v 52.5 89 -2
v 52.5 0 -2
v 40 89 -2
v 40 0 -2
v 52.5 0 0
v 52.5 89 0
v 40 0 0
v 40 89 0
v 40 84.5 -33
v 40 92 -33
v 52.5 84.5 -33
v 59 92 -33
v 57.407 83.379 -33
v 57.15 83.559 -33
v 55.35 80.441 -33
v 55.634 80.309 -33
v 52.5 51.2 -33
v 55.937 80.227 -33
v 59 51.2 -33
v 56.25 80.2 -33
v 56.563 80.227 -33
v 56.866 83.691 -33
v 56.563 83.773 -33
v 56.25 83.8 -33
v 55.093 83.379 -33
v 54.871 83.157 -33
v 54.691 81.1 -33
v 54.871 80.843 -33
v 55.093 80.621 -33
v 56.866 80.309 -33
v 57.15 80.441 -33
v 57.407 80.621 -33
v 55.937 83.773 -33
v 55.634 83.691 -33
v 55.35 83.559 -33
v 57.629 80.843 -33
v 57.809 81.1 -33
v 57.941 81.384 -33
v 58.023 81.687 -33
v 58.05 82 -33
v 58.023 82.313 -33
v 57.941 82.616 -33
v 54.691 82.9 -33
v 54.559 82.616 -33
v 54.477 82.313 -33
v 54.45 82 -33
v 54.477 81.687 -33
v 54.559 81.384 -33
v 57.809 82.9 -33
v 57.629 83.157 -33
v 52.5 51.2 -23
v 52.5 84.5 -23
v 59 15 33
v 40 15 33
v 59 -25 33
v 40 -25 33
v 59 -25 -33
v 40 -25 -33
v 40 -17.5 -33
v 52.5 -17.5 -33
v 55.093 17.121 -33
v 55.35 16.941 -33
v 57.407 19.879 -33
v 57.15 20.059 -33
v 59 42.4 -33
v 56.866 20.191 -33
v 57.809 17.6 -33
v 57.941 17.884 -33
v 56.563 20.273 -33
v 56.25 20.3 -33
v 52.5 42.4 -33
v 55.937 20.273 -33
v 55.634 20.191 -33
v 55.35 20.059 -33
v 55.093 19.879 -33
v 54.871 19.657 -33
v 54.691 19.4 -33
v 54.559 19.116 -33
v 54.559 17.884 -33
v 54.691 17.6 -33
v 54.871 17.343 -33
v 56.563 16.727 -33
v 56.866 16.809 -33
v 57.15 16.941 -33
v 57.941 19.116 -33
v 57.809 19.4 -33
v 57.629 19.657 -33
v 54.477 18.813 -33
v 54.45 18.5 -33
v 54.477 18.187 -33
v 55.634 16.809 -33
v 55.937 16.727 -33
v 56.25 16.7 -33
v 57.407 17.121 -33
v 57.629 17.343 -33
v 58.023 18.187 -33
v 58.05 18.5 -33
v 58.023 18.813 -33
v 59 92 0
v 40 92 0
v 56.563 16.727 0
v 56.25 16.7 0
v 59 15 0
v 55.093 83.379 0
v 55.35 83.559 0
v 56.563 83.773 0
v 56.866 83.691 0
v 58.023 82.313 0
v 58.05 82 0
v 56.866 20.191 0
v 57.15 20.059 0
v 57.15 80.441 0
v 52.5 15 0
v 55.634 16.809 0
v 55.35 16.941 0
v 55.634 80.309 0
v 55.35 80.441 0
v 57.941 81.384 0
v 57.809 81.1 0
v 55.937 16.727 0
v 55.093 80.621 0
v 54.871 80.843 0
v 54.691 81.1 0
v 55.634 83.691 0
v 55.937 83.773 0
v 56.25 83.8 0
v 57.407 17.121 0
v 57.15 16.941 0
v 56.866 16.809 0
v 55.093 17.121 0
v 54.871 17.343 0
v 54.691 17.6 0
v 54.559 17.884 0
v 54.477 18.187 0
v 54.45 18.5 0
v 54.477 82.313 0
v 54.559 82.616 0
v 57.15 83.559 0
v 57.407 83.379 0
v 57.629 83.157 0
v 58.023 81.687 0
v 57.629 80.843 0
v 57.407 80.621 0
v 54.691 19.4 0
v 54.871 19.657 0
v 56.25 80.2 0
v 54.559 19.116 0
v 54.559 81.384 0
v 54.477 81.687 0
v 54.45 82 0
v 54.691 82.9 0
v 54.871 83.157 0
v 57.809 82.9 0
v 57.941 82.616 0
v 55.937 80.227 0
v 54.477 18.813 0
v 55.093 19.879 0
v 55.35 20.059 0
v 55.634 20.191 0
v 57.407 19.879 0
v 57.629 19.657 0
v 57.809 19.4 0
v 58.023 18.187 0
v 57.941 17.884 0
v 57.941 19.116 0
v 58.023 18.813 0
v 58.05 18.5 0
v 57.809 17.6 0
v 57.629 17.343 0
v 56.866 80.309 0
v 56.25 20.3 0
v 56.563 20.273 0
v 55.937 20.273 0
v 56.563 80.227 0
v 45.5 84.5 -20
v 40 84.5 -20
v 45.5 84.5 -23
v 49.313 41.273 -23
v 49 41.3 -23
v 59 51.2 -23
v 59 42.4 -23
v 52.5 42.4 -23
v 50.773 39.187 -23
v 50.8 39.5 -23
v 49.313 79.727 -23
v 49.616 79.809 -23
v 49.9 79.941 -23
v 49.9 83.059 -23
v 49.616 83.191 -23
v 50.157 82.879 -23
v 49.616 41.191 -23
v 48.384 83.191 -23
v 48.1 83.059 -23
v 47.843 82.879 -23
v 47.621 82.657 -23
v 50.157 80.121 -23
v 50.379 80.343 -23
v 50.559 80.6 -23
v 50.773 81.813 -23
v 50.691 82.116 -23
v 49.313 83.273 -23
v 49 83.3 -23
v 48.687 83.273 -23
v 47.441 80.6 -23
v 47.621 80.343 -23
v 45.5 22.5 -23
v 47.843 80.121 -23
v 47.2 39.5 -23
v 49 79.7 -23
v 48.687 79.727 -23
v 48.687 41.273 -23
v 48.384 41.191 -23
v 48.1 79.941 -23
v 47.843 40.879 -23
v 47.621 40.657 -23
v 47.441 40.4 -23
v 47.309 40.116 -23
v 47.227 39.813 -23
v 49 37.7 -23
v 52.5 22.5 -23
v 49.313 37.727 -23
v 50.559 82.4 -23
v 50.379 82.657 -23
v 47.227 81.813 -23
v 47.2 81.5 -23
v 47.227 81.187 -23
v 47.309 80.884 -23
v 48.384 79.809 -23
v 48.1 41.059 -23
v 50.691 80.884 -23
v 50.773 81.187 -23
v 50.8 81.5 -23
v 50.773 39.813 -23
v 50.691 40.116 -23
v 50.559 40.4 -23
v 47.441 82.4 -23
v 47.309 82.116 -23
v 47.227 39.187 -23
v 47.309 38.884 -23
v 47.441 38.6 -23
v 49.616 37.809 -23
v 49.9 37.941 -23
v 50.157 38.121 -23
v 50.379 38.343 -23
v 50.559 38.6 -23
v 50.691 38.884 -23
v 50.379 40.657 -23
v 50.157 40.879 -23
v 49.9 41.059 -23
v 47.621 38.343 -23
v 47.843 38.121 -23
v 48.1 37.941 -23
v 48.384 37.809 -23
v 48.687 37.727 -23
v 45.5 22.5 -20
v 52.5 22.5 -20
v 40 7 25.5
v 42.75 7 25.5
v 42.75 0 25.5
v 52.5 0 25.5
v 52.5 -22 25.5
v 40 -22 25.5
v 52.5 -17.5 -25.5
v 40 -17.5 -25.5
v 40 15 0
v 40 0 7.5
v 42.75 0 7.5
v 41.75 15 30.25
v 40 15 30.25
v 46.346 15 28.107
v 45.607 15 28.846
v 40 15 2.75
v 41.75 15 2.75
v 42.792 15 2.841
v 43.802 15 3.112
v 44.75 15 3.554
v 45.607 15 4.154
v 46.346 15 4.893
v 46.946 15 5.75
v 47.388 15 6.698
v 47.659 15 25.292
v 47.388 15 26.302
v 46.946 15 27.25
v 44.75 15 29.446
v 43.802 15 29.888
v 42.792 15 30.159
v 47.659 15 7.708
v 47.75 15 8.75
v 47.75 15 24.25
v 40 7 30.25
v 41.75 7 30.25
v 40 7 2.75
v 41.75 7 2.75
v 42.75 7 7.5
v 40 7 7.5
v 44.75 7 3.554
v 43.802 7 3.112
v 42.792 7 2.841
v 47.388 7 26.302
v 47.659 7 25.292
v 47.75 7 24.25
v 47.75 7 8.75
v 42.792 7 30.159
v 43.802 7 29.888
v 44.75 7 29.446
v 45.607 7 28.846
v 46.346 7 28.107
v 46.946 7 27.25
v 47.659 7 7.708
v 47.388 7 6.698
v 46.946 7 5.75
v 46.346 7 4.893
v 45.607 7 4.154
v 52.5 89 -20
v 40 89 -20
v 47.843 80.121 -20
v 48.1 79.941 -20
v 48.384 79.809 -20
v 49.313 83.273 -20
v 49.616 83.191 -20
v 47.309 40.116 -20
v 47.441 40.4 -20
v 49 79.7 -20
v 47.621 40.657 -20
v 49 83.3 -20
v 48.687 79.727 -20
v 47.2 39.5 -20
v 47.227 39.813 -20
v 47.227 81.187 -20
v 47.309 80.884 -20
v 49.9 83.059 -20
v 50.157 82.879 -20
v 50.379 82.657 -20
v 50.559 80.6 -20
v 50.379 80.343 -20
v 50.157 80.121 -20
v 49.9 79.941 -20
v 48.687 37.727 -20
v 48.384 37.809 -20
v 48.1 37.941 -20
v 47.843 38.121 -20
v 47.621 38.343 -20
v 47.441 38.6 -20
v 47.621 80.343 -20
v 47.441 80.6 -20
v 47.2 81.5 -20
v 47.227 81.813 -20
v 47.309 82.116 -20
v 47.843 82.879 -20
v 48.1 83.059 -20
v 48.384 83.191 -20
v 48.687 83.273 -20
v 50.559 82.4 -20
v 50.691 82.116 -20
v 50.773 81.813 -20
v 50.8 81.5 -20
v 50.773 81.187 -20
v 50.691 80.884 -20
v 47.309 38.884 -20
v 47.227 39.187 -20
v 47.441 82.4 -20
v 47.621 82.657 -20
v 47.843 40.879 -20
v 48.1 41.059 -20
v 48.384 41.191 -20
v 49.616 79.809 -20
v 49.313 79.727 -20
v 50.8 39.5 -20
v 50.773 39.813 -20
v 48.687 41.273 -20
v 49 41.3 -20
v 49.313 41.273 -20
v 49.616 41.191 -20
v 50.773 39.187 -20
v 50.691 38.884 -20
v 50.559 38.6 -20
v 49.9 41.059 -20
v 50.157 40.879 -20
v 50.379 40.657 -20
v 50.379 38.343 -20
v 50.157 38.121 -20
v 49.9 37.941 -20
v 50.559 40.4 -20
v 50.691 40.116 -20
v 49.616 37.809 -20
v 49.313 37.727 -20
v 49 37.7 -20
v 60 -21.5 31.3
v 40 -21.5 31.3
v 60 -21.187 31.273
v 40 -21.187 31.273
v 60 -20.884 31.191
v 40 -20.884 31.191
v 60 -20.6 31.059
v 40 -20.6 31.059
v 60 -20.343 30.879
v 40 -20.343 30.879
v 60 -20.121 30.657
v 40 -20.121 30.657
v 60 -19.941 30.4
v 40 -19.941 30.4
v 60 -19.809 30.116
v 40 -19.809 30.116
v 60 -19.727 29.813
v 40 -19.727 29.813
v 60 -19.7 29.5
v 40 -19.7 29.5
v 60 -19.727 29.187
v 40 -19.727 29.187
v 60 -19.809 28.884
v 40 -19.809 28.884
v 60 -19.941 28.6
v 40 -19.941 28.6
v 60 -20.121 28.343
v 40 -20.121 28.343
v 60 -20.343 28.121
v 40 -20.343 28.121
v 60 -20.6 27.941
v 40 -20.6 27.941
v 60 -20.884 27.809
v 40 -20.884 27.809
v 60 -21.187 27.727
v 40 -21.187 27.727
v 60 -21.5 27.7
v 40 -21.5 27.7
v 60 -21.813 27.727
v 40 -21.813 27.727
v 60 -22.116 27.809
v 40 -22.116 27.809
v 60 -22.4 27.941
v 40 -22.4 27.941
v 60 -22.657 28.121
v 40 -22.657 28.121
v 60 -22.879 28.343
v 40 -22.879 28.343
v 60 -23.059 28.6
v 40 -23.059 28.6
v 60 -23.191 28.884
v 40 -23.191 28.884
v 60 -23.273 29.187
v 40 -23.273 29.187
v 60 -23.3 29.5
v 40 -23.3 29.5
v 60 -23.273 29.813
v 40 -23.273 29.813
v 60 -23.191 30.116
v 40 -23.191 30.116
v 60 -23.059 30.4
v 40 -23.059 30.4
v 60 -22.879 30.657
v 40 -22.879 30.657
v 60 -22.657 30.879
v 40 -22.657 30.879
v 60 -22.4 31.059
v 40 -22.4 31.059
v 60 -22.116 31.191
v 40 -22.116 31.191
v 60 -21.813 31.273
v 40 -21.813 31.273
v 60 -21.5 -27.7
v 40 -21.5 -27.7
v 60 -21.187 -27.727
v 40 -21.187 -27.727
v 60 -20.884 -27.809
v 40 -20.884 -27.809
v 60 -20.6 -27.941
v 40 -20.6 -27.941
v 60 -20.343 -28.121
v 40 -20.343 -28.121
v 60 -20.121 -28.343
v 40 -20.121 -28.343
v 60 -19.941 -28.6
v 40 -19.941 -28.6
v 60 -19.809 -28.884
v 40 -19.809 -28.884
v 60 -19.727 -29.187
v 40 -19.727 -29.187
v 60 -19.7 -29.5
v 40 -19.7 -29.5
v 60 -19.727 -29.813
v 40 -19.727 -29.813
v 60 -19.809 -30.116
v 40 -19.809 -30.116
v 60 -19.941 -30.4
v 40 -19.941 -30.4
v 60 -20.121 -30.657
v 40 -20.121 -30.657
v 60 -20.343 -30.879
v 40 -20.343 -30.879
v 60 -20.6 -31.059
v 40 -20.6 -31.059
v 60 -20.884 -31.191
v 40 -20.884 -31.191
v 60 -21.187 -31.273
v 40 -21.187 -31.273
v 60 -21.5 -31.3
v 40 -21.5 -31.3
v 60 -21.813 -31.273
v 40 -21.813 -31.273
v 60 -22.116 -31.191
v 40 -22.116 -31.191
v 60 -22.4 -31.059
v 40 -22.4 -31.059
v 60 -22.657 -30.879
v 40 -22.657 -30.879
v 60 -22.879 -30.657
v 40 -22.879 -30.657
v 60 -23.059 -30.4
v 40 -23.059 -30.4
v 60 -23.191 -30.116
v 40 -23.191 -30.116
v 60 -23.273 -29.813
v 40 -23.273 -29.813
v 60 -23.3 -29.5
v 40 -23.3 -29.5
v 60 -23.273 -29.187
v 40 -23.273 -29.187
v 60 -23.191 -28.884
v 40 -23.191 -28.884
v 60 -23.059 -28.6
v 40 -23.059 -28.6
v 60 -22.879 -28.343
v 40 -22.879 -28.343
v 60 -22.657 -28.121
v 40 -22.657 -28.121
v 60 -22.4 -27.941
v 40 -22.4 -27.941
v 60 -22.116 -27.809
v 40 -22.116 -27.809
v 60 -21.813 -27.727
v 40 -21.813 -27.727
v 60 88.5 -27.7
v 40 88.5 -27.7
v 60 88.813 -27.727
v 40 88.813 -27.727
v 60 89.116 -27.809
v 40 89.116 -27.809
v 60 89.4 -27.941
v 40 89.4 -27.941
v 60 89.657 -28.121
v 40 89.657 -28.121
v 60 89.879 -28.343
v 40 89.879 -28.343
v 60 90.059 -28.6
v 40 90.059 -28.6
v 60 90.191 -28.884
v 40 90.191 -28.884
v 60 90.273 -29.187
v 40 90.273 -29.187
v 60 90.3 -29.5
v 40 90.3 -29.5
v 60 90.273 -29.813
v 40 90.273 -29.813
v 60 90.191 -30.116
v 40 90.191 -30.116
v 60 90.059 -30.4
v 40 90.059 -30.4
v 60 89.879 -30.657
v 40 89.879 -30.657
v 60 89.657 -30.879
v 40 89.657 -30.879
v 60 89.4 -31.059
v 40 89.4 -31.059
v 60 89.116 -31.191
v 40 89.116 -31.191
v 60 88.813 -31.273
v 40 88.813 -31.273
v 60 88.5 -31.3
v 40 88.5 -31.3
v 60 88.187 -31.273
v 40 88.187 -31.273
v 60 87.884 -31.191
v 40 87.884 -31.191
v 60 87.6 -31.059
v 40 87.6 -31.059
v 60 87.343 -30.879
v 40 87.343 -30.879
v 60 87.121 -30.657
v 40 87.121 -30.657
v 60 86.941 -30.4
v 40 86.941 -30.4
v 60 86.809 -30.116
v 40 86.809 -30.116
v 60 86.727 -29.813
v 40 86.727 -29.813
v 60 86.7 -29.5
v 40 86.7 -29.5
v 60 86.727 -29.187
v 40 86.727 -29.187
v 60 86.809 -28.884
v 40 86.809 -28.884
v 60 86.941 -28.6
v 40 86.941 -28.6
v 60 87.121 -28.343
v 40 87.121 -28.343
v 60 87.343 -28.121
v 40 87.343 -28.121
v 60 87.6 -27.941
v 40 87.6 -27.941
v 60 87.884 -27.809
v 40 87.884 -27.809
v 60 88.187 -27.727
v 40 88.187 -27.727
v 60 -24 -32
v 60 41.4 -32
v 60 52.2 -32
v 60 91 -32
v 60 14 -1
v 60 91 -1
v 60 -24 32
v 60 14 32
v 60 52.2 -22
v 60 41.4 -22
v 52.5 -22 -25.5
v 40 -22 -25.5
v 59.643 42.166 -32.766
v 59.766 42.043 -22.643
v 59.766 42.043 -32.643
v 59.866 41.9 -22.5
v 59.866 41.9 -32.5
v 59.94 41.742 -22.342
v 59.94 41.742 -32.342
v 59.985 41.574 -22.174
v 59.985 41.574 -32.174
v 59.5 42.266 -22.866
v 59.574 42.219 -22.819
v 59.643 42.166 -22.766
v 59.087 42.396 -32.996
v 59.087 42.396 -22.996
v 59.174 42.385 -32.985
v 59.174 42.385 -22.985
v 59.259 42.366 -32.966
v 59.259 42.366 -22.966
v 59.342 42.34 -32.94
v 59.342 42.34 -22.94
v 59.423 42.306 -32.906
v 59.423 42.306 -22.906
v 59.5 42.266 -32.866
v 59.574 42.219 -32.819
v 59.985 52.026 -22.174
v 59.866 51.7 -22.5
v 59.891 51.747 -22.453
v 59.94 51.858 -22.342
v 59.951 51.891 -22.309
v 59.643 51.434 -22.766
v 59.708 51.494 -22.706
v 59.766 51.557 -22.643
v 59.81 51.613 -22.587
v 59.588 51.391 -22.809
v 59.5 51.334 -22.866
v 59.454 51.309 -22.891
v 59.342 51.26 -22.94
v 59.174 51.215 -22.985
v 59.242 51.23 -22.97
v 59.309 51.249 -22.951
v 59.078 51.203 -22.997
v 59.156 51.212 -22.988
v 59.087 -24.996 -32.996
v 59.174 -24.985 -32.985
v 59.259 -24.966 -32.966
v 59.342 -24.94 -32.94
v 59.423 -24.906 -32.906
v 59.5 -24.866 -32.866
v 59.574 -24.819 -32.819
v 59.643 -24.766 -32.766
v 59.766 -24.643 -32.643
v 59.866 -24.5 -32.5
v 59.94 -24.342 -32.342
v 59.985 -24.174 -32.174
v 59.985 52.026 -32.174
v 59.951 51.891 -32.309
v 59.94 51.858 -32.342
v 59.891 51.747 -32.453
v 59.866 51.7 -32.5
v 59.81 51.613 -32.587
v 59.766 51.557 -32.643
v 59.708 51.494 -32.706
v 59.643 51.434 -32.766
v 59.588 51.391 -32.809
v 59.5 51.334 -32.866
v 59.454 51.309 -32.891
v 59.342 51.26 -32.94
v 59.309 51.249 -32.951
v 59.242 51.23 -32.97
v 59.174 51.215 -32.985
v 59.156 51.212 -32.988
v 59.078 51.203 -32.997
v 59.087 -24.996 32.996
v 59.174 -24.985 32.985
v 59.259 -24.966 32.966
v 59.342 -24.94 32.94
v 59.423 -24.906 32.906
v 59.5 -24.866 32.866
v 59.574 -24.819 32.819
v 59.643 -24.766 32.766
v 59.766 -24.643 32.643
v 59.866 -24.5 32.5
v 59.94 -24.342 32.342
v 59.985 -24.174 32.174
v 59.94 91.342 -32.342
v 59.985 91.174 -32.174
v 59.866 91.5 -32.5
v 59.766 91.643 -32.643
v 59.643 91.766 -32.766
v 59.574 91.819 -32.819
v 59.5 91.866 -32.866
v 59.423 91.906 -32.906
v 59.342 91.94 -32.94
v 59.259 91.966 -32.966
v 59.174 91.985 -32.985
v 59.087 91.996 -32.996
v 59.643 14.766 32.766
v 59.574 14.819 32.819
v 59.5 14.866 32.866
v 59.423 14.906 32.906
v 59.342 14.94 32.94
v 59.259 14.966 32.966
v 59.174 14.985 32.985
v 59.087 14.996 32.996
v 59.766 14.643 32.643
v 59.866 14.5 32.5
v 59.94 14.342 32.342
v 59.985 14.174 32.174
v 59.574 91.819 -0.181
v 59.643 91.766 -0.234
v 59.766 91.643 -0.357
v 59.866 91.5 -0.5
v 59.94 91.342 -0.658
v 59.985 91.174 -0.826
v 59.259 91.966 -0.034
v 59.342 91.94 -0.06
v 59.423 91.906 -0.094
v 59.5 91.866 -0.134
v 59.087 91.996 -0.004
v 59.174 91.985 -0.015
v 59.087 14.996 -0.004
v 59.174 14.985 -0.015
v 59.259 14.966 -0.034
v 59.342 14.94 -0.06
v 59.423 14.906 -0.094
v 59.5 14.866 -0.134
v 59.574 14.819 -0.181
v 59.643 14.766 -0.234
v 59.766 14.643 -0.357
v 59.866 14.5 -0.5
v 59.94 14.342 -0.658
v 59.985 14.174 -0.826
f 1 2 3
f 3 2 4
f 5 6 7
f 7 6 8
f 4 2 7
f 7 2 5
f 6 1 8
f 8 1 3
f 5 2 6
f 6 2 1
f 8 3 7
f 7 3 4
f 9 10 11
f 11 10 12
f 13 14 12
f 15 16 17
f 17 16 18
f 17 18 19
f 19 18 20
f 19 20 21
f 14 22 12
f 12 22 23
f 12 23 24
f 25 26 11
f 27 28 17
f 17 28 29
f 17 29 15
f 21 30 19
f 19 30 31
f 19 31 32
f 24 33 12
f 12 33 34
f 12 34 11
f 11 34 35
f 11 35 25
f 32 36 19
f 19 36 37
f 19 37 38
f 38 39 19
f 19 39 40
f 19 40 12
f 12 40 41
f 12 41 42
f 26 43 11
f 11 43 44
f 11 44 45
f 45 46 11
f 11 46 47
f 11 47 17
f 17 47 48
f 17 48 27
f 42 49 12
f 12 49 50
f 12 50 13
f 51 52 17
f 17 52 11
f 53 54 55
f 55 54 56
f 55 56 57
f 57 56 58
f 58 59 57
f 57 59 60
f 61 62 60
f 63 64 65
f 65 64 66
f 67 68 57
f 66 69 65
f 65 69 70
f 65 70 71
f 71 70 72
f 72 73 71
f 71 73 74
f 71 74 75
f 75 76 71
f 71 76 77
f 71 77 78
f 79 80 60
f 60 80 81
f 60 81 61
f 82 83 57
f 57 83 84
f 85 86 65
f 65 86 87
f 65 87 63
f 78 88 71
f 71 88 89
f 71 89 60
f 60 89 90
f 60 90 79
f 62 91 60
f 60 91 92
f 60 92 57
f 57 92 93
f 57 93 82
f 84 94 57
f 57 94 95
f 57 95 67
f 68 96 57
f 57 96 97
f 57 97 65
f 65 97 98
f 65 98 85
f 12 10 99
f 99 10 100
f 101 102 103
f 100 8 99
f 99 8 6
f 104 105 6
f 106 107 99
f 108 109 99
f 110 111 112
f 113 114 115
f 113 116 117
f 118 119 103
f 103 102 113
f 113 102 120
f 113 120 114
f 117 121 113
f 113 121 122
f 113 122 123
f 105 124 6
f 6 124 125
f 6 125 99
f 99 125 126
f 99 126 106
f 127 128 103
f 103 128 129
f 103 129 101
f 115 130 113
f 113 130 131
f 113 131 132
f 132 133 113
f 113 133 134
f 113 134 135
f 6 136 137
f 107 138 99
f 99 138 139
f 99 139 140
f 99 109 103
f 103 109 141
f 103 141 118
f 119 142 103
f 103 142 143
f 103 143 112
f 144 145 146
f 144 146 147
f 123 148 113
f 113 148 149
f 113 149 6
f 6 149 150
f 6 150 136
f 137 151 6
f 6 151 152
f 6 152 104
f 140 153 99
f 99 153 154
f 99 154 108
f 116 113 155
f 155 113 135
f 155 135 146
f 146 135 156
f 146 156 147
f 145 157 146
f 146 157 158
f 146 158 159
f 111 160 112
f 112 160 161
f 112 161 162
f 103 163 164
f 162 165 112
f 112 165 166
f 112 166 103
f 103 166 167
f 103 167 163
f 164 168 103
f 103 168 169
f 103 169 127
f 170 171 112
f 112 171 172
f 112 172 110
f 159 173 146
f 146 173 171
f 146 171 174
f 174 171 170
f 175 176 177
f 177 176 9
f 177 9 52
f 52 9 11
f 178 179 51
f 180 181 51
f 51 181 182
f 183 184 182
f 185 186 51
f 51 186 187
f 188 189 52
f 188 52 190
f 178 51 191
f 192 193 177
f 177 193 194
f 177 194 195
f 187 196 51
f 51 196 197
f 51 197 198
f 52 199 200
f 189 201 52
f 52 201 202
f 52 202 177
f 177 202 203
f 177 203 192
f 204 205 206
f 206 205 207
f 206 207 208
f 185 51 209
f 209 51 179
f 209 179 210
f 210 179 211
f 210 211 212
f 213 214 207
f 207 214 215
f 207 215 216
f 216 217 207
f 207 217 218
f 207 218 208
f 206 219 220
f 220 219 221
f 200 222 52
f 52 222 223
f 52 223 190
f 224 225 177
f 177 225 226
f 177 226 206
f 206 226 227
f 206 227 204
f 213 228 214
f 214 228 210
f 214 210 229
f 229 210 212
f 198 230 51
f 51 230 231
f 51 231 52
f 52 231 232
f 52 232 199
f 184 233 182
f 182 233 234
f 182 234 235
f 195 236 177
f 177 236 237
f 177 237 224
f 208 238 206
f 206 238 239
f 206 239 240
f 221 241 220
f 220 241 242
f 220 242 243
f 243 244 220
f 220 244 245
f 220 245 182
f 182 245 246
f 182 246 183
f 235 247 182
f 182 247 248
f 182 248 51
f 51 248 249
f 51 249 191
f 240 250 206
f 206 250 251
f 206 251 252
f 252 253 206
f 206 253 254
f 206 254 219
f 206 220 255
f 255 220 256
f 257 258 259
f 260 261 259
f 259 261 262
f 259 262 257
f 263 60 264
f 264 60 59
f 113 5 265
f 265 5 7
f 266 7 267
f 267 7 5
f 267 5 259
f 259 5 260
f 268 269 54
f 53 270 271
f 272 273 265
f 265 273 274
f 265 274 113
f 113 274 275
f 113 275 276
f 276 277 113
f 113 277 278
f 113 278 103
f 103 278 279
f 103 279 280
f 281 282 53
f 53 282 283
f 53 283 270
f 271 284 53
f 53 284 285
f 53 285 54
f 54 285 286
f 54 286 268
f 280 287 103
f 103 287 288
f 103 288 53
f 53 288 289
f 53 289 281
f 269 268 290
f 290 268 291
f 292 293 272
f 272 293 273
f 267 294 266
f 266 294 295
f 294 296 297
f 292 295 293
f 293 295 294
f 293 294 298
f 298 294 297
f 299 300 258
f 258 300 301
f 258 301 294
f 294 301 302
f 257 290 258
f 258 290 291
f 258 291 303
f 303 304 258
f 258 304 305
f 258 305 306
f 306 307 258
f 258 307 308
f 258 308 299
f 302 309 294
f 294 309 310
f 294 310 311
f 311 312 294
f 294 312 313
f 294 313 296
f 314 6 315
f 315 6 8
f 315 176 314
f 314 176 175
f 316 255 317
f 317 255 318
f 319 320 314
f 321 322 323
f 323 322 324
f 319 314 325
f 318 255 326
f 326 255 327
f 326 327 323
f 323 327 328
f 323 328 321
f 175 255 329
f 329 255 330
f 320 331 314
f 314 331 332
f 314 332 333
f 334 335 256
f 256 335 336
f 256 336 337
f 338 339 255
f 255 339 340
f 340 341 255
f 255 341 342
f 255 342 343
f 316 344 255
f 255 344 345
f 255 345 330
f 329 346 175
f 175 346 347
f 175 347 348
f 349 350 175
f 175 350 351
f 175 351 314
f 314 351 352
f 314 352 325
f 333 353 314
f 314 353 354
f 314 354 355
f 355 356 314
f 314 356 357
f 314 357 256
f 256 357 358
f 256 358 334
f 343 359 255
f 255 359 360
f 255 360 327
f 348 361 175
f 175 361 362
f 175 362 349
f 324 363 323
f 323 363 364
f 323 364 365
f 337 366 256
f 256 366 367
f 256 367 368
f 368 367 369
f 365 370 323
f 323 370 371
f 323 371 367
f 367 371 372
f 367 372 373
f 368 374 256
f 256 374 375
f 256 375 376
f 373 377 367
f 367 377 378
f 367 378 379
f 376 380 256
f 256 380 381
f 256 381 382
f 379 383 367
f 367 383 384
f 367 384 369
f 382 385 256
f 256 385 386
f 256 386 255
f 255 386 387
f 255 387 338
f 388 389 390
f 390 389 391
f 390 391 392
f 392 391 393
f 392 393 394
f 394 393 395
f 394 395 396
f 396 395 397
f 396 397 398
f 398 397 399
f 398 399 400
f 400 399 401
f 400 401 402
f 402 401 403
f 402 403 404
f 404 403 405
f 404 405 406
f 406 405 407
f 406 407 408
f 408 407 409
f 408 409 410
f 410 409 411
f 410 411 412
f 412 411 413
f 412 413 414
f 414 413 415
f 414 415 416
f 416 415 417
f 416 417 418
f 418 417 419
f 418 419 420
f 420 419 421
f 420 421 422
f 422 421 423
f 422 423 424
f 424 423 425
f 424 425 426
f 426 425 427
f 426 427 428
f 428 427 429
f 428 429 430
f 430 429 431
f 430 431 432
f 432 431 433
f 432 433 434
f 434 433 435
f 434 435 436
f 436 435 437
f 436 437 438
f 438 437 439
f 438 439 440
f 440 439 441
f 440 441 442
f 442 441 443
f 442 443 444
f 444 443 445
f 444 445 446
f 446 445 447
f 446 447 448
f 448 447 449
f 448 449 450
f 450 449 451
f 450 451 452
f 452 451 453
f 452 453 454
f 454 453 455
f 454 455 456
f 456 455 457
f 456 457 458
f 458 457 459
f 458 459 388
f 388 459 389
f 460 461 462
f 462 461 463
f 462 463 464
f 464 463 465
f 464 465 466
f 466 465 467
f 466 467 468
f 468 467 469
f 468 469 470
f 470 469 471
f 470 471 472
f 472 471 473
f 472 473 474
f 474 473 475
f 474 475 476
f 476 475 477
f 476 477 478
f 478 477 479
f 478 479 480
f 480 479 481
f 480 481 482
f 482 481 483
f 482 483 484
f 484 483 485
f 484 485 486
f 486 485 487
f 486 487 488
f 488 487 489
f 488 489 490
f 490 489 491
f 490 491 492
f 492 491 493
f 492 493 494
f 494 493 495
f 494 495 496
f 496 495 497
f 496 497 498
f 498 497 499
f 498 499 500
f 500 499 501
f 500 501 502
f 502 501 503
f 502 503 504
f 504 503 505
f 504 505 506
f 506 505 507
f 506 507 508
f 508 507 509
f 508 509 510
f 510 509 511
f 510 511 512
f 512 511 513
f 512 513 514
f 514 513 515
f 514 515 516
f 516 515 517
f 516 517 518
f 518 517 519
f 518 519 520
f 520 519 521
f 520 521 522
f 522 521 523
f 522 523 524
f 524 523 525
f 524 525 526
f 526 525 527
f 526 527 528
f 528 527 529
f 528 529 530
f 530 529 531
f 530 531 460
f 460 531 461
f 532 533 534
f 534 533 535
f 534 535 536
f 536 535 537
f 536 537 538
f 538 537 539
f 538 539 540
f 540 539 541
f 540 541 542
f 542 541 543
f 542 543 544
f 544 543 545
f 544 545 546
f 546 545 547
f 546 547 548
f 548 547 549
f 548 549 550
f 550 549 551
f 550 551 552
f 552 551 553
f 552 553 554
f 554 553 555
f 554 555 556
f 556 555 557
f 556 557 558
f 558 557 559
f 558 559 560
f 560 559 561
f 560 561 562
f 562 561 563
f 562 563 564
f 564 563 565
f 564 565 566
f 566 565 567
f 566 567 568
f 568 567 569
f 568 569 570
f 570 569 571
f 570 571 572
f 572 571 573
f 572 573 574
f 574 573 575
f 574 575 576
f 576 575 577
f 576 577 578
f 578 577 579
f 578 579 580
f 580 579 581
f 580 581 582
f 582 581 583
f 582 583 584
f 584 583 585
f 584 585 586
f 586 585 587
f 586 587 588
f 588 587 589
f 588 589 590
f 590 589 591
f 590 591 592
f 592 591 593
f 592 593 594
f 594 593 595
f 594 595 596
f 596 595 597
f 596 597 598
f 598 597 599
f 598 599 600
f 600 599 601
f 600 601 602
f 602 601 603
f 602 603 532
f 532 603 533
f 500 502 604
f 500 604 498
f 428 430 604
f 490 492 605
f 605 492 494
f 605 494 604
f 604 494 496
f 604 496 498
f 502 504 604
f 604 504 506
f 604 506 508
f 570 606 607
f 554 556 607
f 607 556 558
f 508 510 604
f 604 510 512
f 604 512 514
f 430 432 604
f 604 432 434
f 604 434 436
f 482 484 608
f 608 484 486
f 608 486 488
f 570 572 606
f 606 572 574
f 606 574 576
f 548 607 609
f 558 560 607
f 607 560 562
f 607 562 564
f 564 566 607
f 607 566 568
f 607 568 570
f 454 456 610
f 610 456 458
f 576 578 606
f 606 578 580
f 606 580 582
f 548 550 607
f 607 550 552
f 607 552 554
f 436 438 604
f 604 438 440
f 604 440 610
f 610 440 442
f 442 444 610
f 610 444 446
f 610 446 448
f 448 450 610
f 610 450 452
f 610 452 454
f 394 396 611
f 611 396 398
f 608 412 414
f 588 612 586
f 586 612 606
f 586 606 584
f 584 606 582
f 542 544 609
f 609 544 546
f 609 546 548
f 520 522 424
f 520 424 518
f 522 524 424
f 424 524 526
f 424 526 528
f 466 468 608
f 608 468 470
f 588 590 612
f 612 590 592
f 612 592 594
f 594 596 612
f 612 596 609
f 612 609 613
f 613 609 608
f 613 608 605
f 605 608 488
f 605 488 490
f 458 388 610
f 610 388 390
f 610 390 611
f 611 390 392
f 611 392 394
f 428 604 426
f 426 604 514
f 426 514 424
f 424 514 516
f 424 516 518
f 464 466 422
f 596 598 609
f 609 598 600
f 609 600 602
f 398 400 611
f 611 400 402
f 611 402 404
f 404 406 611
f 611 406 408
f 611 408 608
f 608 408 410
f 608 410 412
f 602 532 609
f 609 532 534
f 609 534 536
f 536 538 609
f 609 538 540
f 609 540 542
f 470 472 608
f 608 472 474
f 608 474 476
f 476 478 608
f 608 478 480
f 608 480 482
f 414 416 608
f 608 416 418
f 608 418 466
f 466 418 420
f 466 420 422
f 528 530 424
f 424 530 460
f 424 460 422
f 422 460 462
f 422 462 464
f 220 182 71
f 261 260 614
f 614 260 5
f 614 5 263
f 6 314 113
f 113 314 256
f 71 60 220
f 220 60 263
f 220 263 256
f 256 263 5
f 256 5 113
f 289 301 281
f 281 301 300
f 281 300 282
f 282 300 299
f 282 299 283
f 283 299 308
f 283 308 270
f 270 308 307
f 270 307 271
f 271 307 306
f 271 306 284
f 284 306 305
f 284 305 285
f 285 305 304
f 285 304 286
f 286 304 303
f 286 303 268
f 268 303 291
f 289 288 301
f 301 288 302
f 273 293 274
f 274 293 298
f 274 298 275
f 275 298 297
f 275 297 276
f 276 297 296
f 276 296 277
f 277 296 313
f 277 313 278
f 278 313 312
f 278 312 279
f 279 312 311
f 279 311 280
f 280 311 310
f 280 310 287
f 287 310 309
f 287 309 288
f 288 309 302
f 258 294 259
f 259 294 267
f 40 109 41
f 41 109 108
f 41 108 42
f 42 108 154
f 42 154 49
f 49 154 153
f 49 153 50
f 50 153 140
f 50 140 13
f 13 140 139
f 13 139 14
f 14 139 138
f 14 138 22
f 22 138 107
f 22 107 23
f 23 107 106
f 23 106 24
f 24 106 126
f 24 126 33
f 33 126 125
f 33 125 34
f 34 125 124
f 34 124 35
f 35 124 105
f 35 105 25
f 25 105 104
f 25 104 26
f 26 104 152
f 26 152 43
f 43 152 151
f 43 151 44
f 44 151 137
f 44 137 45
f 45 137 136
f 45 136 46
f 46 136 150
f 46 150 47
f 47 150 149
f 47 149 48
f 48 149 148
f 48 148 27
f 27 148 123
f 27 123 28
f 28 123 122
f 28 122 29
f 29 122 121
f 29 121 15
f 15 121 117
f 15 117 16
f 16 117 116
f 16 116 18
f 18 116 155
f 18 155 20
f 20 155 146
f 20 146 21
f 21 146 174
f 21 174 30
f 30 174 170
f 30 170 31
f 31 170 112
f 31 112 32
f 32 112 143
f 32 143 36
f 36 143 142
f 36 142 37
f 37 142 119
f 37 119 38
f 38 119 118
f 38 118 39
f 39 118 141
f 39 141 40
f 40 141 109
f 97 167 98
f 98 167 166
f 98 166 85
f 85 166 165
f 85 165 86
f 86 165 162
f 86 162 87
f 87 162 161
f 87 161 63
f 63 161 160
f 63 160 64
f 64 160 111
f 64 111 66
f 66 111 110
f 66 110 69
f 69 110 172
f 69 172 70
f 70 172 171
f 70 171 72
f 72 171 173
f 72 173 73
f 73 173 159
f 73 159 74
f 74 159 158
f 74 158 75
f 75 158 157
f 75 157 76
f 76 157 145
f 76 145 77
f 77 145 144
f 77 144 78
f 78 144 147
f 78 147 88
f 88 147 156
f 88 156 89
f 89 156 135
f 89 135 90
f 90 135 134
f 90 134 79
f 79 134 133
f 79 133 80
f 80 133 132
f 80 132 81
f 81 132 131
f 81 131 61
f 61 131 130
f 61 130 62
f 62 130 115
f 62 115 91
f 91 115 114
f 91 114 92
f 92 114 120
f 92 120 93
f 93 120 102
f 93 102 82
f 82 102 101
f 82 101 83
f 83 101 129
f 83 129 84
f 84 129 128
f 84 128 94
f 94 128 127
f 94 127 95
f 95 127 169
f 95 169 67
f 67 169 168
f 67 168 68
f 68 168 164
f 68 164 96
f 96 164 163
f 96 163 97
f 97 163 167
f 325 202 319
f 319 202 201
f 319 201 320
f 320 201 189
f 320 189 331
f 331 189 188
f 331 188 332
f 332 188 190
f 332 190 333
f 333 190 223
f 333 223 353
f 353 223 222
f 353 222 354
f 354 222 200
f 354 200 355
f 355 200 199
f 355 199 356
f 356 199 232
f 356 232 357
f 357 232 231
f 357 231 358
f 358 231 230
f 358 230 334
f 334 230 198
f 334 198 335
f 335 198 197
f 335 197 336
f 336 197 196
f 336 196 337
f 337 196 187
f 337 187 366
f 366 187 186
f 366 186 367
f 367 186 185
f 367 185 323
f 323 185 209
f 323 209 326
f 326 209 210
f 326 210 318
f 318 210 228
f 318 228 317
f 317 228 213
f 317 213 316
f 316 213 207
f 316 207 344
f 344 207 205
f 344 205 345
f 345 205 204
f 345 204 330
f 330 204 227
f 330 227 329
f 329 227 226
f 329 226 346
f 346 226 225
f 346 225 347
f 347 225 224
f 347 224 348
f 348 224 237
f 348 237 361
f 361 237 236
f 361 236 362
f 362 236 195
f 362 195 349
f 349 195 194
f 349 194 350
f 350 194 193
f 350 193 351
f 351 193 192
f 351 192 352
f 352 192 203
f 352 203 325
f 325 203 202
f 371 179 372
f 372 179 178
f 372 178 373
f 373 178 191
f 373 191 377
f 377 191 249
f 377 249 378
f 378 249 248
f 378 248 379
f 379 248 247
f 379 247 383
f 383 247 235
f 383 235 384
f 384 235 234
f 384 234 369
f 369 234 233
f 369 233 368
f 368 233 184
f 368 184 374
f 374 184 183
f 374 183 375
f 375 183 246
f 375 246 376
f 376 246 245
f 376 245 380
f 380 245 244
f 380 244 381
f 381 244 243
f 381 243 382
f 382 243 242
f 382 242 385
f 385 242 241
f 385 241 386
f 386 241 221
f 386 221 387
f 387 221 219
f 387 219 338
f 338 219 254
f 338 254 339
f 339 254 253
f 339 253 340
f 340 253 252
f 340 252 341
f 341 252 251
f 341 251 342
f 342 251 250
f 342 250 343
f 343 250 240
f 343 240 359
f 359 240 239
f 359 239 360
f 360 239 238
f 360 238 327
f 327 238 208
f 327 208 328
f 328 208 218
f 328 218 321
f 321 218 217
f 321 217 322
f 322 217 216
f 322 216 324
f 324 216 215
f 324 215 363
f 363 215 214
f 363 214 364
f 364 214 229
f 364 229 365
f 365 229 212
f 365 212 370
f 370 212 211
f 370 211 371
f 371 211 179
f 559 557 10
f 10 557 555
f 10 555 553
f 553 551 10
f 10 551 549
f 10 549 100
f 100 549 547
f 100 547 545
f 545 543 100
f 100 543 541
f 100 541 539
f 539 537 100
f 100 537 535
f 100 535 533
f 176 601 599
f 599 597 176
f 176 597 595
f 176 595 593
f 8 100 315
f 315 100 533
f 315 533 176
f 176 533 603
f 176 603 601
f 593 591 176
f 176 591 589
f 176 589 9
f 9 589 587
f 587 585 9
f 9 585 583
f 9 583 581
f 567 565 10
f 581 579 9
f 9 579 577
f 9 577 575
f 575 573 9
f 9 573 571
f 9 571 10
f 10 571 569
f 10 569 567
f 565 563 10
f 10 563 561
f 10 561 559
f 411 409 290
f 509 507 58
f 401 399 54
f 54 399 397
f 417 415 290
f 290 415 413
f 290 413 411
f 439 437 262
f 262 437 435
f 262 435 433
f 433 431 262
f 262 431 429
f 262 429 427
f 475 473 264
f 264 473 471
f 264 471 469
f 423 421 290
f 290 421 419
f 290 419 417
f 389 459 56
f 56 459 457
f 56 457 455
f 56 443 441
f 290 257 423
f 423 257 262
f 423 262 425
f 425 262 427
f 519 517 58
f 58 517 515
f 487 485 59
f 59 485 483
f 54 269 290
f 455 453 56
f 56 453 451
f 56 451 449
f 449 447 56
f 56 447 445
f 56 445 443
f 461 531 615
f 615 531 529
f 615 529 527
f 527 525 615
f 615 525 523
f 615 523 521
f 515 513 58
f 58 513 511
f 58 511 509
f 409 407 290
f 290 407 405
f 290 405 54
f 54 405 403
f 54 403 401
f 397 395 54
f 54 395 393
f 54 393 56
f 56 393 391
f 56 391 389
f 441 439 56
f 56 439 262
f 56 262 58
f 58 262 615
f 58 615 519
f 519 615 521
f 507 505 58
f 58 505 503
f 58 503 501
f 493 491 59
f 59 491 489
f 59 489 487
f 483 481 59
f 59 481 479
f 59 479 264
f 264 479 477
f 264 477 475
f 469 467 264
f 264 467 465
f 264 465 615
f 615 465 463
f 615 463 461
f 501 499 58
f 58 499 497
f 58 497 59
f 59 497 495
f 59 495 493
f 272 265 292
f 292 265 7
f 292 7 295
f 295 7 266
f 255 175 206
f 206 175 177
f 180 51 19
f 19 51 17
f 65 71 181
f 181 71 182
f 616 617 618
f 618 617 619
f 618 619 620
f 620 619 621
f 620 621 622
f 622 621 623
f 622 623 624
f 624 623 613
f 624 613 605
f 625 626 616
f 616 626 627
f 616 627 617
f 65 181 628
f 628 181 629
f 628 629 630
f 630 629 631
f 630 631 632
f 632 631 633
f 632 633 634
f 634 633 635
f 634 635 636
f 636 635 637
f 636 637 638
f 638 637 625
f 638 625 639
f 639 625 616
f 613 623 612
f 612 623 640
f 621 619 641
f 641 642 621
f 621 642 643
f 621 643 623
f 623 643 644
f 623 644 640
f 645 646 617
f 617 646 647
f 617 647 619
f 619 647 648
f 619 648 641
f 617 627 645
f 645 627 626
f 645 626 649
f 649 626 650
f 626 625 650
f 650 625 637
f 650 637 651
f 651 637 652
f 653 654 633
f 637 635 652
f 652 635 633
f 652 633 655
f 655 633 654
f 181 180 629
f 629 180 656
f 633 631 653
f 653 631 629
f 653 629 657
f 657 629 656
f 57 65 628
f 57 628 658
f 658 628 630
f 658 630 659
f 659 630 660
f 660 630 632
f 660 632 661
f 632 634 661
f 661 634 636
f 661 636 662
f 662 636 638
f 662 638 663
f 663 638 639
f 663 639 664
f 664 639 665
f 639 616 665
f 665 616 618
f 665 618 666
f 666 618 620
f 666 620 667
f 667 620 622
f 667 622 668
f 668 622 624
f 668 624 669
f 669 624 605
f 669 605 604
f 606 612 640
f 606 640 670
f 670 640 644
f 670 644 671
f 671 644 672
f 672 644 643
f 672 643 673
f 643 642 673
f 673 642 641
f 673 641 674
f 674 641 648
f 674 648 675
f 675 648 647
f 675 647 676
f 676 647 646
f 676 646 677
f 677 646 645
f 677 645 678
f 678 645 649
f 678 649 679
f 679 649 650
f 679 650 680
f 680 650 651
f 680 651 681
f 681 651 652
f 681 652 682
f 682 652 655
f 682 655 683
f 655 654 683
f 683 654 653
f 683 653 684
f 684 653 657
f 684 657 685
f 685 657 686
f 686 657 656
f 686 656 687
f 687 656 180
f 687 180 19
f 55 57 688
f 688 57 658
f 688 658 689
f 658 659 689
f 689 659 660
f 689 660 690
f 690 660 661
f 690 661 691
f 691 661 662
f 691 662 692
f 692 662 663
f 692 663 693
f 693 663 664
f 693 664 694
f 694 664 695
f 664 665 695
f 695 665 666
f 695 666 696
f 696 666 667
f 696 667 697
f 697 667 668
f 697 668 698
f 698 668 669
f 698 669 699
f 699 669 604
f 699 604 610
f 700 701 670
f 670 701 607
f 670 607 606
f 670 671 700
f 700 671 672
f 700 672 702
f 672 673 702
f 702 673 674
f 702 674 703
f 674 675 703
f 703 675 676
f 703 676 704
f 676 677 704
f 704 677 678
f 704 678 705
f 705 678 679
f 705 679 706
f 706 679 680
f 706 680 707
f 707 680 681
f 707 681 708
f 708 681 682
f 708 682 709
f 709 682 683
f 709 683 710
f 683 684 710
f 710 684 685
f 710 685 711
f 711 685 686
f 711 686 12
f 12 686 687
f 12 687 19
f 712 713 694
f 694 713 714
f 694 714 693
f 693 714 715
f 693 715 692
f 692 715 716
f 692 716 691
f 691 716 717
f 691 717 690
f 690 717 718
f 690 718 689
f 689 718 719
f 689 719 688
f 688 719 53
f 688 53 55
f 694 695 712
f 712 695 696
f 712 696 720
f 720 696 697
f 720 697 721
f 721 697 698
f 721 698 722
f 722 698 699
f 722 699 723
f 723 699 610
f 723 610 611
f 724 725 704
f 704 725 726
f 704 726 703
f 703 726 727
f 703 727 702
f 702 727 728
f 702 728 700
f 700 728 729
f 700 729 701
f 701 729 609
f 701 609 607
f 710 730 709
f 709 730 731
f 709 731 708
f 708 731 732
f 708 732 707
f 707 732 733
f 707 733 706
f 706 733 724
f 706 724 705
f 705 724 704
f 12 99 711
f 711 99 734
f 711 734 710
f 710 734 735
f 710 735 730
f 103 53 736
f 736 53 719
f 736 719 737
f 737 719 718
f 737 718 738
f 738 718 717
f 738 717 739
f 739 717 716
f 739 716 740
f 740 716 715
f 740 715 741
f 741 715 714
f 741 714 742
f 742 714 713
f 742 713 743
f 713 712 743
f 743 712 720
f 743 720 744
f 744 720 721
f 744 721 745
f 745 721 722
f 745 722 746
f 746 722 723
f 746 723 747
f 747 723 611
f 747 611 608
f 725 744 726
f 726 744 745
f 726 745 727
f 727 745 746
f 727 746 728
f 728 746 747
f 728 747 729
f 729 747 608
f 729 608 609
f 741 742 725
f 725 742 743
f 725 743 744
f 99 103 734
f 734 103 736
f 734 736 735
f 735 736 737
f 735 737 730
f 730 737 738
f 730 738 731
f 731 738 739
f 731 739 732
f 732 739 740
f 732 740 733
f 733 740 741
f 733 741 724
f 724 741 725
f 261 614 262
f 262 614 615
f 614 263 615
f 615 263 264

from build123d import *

# Parameters (mm, degrees)
SKETCH_1_W               = 33
SKETCH_1_H               = 25
SKETCH_1_W_2             = 23
SKETCH_1_H_2             = 117
SKETCH_1_W_3             = 10
EXTRUDE_1_DEPTH          = 60
SKETCH_2_W               = 45
SKETCH_2_H               = 62
CUT_EXTRUDE_1_DEPTH      = 10
SKETCH_3_R               = 8.1
CUT_EXTRUDE_2_DEPTH      = 10
SKETCH_4_W               = 45
SKETCH_4_H               = 40
CUT_EXTRUDE_3_DEPTH      = 58.5
SKETCH_5_W               = 60
SKETCH_5_H               = 33
EXTRUDE_2_DEPTH          = 15
EXTRUDE_3_DEPTH          = 7
SKETCH_7_W               = 45
SKETCH_7_H               = 66.5
CUT_EXTRUDE_4_DEPTH      = 20
SKETCH_8_W               = 45
SKETCH_8_H               = 2
EXTRUDE_4_DEPTH          = 89
SKETCH_9_R               = 1.8
CUT_EXTRUDE_5_DEPTH      = 61
SKETCH_10_R              = 1.8
CUT_EXTRUDE_6_DEPTH      = 34
CUT_EXTRUDE_6_DEPTH_BACK = 34
SKETCH_12_R              = 1.8
CUT_EXTRUDE_7_DEPTH      = 3
CUT_EXTRUDE_8_DEPTH      = 40
SKETCH_21_W              = 3
SKETCH_21_H              = 62
CUT_EXTRUDE_9_DEPTH      = 5.5
SKETCH_23_W              = 7.5
SKETCH_23_H              = 8.8
CUT_EXTRUDE_10_DEPTH     = 10
FILLET_1_R               = 1
CUT_EXTRUDE_START        = -12.5
SKETCH_24_W              = 51
SKETCH_24_H              = 4.5
CUT_EXTRUDE_11_DEPTH     = 12.5


with BuildPart() as part:
    # ｽｹｯﾁ1 → ﾎﾞｽ - 押し出し1 (new body)
    with BuildSketch(Plane(origin=(0, 0, 0), x_dir=(0, 0, -1), z_dir=(1, 0, 0))):
        with Locations((-16.5, -12.5)):
            Rectangle(SKETCH_1_W, SKETCH_1_H)
        with Locations((11.5, 33.5)):
            Rectangle(SKETCH_1_W_2, SKETCH_1_H_2)
        with Locations((28, 33.5)):
            Rectangle(SKETCH_1_W_3, SKETCH_1_H_2)
    extrude(amount=EXTRUDE_1_DEPTH)

    # ｽｹｯﾁ2 → ｶｯﾄ - 押し出し1 (cut)
    with BuildSketch(Plane(origin=(0, 0, -33), x_dir=(-1, 0, 0), z_dir=(0, 0, -1))):
        with Locations((-30, 53.5)):
            Rectangle(SKETCH_2_W, SKETCH_2_H)
    extrude(amount=-CUT_EXTRUDE_1_DEPTH, mode=Mode.SUBTRACT)

    # ｽｹｯﾁ3 → ｶｯﾄ - 押し出し2 (cut)
    with BuildSketch(Plane(origin=(0, 92, 0), x_dir=(1, 0, 0), z_dir=(0, 1, 0))):
        with Locations((29, 12.5)):
            Circle(SKETCH_3_R)
    extrude(amount=-CUT_EXTRUDE_2_DEPTH, mode=Mode.SUBTRACT)

    # ｽｹｯﾁ4 → ｶｯﾄ - 押し出し3 (cut)
    with BuildSketch(Plane(origin=(0, 0, -33), x_dir=(-1, 0, 0), z_dir=(0, 0, -1))):
        with Locations((-30, 2.5)):
            Rectangle(SKETCH_4_W, SKETCH_4_H)
    extrude(amount=-CUT_EXTRUDE_3_DEPTH, mode=Mode.SUBTRACT)

    # ｽｹｯﾁ5 → ﾎﾞｽ - 押し出し2 (add)
    with BuildSketch(Plane(origin=(0, 0, 0), x_dir=(1, 0, 0), z_dir=(0, 1, 0))):
        with Locations((30, -16.5)):
            Rectangle(SKETCH_5_W, SKETCH_5_H)
        with BuildLine():
            Line((41.75, -2.75), (16.25, -2.75))
            ThreePointArc((16.25, -2.75), (12.007359313, -4.507359313), (10.25, -8.75))
            Line((10.25, -8.75), (10.25, -24.25))
            ThreePointArc((10.25, -24.25), (12.007359313, -28.492640687), (16.25, -30.25))
            Line((16.25, -30.25), (41.75, -30.25))
            ThreePointArc((41.75, -30.25), (45.992640687, -28.492640687), (47.75, -24.25))
            Line((47.75, -24.25), (47.75, -8.75))
            ThreePointArc((47.75, -8.75), (45.992640687, -4.507359313), (41.75, -2.75))
        make_face(mode=Mode.SUBTRACT)
    extrude(amount=EXTRUDE_2_DEPTH)

    # ｽｹｯﾁ6 → ﾎﾞｽ - 押し出し3 (add)
    with BuildSketch(Plane(origin=(0, 0, 0), x_dir=(1, 0, 0), z_dir=(0, 1, 0))):
        with BuildLine():
            Line((10.381652703, -25.5), (34.75, -25.5))
            Line((34.75, -25.5), (34.75, -7.5))
            Line((34.75, -7.5), (34.75, -2.75))
            Line((34.75, -2.75), (16.25, -2.75))
            ThreePointArc((16.25, -2.75), (12.007359313, -4.507359313), (10.25, -8.75))
            Line((10.25, -8.75), (10.25, -24.25))
            ThreePointArc((10.25, -24.25), (10.283003947, -24.878456927), (10.381652703, -25.5))
        make_face()
        with BuildLine():
            Line((16.25, -30.25), (34.75, -30.25))
            Line((34.75, -30.25), (34.75, -25.5))
            Line((34.75, -25.5), (10.381652703, -25.5))
            ThreePointArc((10.381652703, -25.5), (12.475082782, -28.913689527), (16.25, -30.25))
        make_face()
        with BuildLine():
            Line((34.75, -25.5), (34.75, -30.25))
            Line((34.75, -30.25), (41.75, -30.25))
            ThreePointArc((41.75, -30.25), (42.251757562, -30.228983137), (42.75, -30.166079783))
            Line((42.75, -30.166079783), (42.75, -25.5))
            Line((42.75, -25.5), (34.75, -25.5))
        make_face()
        with BuildLine():
            Line((42.75, -7.5), (42.75, -25.5))
            Line((42.75, -25.5), (47.618347297, -25.5))
            ThreePointArc((47.618347297, -25.5), (47.716996053, -24.878456927), (47.75, -24.25))
            Line((47.75, -24.25), (47.75, -8.75))
            ThreePointArc((47.75, -8.75), (46.332575695, -4.877016654), (42.75, -2.833920217))
            Line((42.75, -2.833920217), (42.75, -7.5))
        make_face()
        with BuildLine():
            Line((47.618347297, -25.5), (42.75, -25.5))
            Line((42.75, -25.5), (42.75, -30.166079783))
            ThreePointArc((42.75, -30.166079783), (45.901701312, -28.581671296), (47.618347297, -25.5))
        make_face()
        with BuildLine():
            Line((34.75, -2.75), (34.75, -7.5))
            Line((34.75, -7.5), (42.75, -7.5))
            Line((42.75, -7.5), (42.75, -2.833920217))
            ThreePointArc((42.75, -2.833920217), (42.251757562, -2.771016863), (41.75, -2.75))
            Line((41.75, -2.75), (34.75, -2.75))
        make_face()
    extrude(amount=EXTRUDE_3_DEPTH)

    # ｽｹｯﾁ7 → ｶｯﾄ - 押し出し4 (cut)
    with BuildSketch(Plane.XY):
        with Locations((30, 55.75)):
            Rectangle(SKETCH_7_W, SKETCH_7_H)
    extrude(amount=-CUT_EXTRUDE_4_DEPTH, mode=Mode.SUBTRACT)

    # ｽｹｯﾁ9 → ｶｯﾄ - 押し出し5 (cut, through all)
    with BuildSketch(Plane.ZY):
        with Locations((-29.5, 88.5)):
            Circle(SKETCH_9_R)
        with Locations((-29.5, -21.5)):
            Circle(SKETCH_9_R)
        with Locations((29.5, -21.5)):
            Circle(SKETCH_9_R)
    extrude(amount=-CUT_EXTRUDE_5_DEPTH, mode=Mode.SUBTRACT)

    # ｽｹｯﾁ10 → ｶｯﾄ - 押し出し6 (cut, two sides)
    with BuildSketch(Plane.XY) as cut_extrude_6_sk:
        with Locations((3.75, 82)):
            Circle(SKETCH_10_R)
        with Locations((56.25, 82)):
            Circle(SKETCH_10_R)
        with Locations((56.25, 18.5)):
            Circle(SKETCH_10_R)
        with Locations((3.75, 18.5)):
            Circle(SKETCH_10_R)
    extrude(amount=CUT_EXTRUDE_6_DEPTH, mode=Mode.SUBTRACT)
    extrude(cut_extrude_6_sk.sketch, amount=-CUT_EXTRUDE_6_DEPTH_BACK, mode=Mode.SUBTRACT)

    # ｽｹｯﾁ12 → ｶｯﾄ - 押し出し7 (cut)
    with BuildSketch(Plane(origin=(0, 0, -23), x_dir=(-1, 0, 0), z_dir=(0, 0, -1))):
        with Locations((-49, 81.5)):
            Circle(SKETCH_12_R)
        with Locations((-11, 81.5)):
            Circle(SKETCH_12_R)
        with Locations((-11, 39.5)):
            Circle(SKETCH_12_R)
        with Locations((-49, 39.5)):
            Circle(SKETCH_12_R)
    extrude(amount=-CUT_EXTRUDE_7_DEPTH, mode=Mode.SUBTRACT)


with BuildPart() as body_2:
    # ｽｹｯﾁ8 → ﾎﾞｽ - 押し出し4 (new body)
    with BuildSketch(Plane(origin=(0, 89, 0), x_dir=(-1, 0, 0), z_dir=(0, -1, 0))):
        with Locations((-30, 1)):
            Rectangle(SKETCH_8_W, SKETCH_8_H)
    extrude(amount=EXTRUDE_4_DEPTH)


with BuildPart() as cut_extrude_8_tool:
    # ｽｹｯﾁ19 → ｶｯﾄ - 押し出し8 (new body)
    with BuildSketch(Plane.ZY):
        Polygon((33, -25), (33, 15), (0, 15), (0, 92), (-33, 92), (-33, -25), align=None)
    extrude(amount=-CUT_EXTRUDE_8_DEPTH)


with BuildPart() as part_1:
    add(part.part)

    # ｶｯﾄ - 押し出し8: cut by cut_extrude_8_tool
    add(cut_extrude_8_tool.part, mode=Mode.SUBTRACT)

    # ｽｹｯﾁ21 → ｶｯﾄ - 押し出し9 (cut)
    with BuildSketch(Plane.ZY.offset(-40)):
        with Locations((-21.5, 53.5)):
            Rectangle(SKETCH_21_W, SKETCH_21_H)
    extrude(amount=-CUT_EXTRUDE_9_DEPTH, mode=Mode.SUBTRACT)

    # ｽｹｯﾁ23 → ｶｯﾄ - 押し出し10 (cut)
    with BuildSketch(Plane(origin=(0, 0, -33), x_dir=(-1, 0, 0), z_dir=(0, 0, -1))):
        with Locations((-56.25, 46.8)):
            Rectangle(SKETCH_23_W, SKETCH_23_H)
    extrude(amount=-CUT_EXTRUDE_10_DEPTH, mode=Mode.SUBTRACT)

    # ﾌｨﾚｯﾄ1
    fillet_1_edges = [part_1.edges().sort_by_distance(p)[0] for p in [
        (60, -5, 33),
        (60, -25, 0),
        (60, 71.6, -33),
        (60, 92, -16.5),
        (60, 8.7, -33),
        (60, 46.8, -23),
        (60, 42.4, -28),
        (60, 51.2, -28),
        (60, 53.5, 0),
        (60, 15, 16.5),
    ]]
    fillet(fillet_1_edges, radius=FILLET_1_R)

    # ｽｹｯﾁ24 → ｶｯﾄ - 押し出し11 (cut)
    with BuildSketch(Plane.ZY.offset(-40).offset(CUT_EXTRUDE_START)):
        with Locations((0, -19.75)):
            Rectangle(SKETCH_24_W, SKETCH_24_H)
    extrude(amount=CUT_EXTRUDE_11_DEPTH, mode=Mode.SUBTRACT)


with BuildPart() as body_2_1:
    add(body_2.part)

    # ｶｯﾄ - 押し出し8: cut by cut_extrude_8_tool
    add(cut_extrude_8_tool.part, mode=Mode.SUBTRACT)


solid = Compound([part_1.part, body_2_1.part])
